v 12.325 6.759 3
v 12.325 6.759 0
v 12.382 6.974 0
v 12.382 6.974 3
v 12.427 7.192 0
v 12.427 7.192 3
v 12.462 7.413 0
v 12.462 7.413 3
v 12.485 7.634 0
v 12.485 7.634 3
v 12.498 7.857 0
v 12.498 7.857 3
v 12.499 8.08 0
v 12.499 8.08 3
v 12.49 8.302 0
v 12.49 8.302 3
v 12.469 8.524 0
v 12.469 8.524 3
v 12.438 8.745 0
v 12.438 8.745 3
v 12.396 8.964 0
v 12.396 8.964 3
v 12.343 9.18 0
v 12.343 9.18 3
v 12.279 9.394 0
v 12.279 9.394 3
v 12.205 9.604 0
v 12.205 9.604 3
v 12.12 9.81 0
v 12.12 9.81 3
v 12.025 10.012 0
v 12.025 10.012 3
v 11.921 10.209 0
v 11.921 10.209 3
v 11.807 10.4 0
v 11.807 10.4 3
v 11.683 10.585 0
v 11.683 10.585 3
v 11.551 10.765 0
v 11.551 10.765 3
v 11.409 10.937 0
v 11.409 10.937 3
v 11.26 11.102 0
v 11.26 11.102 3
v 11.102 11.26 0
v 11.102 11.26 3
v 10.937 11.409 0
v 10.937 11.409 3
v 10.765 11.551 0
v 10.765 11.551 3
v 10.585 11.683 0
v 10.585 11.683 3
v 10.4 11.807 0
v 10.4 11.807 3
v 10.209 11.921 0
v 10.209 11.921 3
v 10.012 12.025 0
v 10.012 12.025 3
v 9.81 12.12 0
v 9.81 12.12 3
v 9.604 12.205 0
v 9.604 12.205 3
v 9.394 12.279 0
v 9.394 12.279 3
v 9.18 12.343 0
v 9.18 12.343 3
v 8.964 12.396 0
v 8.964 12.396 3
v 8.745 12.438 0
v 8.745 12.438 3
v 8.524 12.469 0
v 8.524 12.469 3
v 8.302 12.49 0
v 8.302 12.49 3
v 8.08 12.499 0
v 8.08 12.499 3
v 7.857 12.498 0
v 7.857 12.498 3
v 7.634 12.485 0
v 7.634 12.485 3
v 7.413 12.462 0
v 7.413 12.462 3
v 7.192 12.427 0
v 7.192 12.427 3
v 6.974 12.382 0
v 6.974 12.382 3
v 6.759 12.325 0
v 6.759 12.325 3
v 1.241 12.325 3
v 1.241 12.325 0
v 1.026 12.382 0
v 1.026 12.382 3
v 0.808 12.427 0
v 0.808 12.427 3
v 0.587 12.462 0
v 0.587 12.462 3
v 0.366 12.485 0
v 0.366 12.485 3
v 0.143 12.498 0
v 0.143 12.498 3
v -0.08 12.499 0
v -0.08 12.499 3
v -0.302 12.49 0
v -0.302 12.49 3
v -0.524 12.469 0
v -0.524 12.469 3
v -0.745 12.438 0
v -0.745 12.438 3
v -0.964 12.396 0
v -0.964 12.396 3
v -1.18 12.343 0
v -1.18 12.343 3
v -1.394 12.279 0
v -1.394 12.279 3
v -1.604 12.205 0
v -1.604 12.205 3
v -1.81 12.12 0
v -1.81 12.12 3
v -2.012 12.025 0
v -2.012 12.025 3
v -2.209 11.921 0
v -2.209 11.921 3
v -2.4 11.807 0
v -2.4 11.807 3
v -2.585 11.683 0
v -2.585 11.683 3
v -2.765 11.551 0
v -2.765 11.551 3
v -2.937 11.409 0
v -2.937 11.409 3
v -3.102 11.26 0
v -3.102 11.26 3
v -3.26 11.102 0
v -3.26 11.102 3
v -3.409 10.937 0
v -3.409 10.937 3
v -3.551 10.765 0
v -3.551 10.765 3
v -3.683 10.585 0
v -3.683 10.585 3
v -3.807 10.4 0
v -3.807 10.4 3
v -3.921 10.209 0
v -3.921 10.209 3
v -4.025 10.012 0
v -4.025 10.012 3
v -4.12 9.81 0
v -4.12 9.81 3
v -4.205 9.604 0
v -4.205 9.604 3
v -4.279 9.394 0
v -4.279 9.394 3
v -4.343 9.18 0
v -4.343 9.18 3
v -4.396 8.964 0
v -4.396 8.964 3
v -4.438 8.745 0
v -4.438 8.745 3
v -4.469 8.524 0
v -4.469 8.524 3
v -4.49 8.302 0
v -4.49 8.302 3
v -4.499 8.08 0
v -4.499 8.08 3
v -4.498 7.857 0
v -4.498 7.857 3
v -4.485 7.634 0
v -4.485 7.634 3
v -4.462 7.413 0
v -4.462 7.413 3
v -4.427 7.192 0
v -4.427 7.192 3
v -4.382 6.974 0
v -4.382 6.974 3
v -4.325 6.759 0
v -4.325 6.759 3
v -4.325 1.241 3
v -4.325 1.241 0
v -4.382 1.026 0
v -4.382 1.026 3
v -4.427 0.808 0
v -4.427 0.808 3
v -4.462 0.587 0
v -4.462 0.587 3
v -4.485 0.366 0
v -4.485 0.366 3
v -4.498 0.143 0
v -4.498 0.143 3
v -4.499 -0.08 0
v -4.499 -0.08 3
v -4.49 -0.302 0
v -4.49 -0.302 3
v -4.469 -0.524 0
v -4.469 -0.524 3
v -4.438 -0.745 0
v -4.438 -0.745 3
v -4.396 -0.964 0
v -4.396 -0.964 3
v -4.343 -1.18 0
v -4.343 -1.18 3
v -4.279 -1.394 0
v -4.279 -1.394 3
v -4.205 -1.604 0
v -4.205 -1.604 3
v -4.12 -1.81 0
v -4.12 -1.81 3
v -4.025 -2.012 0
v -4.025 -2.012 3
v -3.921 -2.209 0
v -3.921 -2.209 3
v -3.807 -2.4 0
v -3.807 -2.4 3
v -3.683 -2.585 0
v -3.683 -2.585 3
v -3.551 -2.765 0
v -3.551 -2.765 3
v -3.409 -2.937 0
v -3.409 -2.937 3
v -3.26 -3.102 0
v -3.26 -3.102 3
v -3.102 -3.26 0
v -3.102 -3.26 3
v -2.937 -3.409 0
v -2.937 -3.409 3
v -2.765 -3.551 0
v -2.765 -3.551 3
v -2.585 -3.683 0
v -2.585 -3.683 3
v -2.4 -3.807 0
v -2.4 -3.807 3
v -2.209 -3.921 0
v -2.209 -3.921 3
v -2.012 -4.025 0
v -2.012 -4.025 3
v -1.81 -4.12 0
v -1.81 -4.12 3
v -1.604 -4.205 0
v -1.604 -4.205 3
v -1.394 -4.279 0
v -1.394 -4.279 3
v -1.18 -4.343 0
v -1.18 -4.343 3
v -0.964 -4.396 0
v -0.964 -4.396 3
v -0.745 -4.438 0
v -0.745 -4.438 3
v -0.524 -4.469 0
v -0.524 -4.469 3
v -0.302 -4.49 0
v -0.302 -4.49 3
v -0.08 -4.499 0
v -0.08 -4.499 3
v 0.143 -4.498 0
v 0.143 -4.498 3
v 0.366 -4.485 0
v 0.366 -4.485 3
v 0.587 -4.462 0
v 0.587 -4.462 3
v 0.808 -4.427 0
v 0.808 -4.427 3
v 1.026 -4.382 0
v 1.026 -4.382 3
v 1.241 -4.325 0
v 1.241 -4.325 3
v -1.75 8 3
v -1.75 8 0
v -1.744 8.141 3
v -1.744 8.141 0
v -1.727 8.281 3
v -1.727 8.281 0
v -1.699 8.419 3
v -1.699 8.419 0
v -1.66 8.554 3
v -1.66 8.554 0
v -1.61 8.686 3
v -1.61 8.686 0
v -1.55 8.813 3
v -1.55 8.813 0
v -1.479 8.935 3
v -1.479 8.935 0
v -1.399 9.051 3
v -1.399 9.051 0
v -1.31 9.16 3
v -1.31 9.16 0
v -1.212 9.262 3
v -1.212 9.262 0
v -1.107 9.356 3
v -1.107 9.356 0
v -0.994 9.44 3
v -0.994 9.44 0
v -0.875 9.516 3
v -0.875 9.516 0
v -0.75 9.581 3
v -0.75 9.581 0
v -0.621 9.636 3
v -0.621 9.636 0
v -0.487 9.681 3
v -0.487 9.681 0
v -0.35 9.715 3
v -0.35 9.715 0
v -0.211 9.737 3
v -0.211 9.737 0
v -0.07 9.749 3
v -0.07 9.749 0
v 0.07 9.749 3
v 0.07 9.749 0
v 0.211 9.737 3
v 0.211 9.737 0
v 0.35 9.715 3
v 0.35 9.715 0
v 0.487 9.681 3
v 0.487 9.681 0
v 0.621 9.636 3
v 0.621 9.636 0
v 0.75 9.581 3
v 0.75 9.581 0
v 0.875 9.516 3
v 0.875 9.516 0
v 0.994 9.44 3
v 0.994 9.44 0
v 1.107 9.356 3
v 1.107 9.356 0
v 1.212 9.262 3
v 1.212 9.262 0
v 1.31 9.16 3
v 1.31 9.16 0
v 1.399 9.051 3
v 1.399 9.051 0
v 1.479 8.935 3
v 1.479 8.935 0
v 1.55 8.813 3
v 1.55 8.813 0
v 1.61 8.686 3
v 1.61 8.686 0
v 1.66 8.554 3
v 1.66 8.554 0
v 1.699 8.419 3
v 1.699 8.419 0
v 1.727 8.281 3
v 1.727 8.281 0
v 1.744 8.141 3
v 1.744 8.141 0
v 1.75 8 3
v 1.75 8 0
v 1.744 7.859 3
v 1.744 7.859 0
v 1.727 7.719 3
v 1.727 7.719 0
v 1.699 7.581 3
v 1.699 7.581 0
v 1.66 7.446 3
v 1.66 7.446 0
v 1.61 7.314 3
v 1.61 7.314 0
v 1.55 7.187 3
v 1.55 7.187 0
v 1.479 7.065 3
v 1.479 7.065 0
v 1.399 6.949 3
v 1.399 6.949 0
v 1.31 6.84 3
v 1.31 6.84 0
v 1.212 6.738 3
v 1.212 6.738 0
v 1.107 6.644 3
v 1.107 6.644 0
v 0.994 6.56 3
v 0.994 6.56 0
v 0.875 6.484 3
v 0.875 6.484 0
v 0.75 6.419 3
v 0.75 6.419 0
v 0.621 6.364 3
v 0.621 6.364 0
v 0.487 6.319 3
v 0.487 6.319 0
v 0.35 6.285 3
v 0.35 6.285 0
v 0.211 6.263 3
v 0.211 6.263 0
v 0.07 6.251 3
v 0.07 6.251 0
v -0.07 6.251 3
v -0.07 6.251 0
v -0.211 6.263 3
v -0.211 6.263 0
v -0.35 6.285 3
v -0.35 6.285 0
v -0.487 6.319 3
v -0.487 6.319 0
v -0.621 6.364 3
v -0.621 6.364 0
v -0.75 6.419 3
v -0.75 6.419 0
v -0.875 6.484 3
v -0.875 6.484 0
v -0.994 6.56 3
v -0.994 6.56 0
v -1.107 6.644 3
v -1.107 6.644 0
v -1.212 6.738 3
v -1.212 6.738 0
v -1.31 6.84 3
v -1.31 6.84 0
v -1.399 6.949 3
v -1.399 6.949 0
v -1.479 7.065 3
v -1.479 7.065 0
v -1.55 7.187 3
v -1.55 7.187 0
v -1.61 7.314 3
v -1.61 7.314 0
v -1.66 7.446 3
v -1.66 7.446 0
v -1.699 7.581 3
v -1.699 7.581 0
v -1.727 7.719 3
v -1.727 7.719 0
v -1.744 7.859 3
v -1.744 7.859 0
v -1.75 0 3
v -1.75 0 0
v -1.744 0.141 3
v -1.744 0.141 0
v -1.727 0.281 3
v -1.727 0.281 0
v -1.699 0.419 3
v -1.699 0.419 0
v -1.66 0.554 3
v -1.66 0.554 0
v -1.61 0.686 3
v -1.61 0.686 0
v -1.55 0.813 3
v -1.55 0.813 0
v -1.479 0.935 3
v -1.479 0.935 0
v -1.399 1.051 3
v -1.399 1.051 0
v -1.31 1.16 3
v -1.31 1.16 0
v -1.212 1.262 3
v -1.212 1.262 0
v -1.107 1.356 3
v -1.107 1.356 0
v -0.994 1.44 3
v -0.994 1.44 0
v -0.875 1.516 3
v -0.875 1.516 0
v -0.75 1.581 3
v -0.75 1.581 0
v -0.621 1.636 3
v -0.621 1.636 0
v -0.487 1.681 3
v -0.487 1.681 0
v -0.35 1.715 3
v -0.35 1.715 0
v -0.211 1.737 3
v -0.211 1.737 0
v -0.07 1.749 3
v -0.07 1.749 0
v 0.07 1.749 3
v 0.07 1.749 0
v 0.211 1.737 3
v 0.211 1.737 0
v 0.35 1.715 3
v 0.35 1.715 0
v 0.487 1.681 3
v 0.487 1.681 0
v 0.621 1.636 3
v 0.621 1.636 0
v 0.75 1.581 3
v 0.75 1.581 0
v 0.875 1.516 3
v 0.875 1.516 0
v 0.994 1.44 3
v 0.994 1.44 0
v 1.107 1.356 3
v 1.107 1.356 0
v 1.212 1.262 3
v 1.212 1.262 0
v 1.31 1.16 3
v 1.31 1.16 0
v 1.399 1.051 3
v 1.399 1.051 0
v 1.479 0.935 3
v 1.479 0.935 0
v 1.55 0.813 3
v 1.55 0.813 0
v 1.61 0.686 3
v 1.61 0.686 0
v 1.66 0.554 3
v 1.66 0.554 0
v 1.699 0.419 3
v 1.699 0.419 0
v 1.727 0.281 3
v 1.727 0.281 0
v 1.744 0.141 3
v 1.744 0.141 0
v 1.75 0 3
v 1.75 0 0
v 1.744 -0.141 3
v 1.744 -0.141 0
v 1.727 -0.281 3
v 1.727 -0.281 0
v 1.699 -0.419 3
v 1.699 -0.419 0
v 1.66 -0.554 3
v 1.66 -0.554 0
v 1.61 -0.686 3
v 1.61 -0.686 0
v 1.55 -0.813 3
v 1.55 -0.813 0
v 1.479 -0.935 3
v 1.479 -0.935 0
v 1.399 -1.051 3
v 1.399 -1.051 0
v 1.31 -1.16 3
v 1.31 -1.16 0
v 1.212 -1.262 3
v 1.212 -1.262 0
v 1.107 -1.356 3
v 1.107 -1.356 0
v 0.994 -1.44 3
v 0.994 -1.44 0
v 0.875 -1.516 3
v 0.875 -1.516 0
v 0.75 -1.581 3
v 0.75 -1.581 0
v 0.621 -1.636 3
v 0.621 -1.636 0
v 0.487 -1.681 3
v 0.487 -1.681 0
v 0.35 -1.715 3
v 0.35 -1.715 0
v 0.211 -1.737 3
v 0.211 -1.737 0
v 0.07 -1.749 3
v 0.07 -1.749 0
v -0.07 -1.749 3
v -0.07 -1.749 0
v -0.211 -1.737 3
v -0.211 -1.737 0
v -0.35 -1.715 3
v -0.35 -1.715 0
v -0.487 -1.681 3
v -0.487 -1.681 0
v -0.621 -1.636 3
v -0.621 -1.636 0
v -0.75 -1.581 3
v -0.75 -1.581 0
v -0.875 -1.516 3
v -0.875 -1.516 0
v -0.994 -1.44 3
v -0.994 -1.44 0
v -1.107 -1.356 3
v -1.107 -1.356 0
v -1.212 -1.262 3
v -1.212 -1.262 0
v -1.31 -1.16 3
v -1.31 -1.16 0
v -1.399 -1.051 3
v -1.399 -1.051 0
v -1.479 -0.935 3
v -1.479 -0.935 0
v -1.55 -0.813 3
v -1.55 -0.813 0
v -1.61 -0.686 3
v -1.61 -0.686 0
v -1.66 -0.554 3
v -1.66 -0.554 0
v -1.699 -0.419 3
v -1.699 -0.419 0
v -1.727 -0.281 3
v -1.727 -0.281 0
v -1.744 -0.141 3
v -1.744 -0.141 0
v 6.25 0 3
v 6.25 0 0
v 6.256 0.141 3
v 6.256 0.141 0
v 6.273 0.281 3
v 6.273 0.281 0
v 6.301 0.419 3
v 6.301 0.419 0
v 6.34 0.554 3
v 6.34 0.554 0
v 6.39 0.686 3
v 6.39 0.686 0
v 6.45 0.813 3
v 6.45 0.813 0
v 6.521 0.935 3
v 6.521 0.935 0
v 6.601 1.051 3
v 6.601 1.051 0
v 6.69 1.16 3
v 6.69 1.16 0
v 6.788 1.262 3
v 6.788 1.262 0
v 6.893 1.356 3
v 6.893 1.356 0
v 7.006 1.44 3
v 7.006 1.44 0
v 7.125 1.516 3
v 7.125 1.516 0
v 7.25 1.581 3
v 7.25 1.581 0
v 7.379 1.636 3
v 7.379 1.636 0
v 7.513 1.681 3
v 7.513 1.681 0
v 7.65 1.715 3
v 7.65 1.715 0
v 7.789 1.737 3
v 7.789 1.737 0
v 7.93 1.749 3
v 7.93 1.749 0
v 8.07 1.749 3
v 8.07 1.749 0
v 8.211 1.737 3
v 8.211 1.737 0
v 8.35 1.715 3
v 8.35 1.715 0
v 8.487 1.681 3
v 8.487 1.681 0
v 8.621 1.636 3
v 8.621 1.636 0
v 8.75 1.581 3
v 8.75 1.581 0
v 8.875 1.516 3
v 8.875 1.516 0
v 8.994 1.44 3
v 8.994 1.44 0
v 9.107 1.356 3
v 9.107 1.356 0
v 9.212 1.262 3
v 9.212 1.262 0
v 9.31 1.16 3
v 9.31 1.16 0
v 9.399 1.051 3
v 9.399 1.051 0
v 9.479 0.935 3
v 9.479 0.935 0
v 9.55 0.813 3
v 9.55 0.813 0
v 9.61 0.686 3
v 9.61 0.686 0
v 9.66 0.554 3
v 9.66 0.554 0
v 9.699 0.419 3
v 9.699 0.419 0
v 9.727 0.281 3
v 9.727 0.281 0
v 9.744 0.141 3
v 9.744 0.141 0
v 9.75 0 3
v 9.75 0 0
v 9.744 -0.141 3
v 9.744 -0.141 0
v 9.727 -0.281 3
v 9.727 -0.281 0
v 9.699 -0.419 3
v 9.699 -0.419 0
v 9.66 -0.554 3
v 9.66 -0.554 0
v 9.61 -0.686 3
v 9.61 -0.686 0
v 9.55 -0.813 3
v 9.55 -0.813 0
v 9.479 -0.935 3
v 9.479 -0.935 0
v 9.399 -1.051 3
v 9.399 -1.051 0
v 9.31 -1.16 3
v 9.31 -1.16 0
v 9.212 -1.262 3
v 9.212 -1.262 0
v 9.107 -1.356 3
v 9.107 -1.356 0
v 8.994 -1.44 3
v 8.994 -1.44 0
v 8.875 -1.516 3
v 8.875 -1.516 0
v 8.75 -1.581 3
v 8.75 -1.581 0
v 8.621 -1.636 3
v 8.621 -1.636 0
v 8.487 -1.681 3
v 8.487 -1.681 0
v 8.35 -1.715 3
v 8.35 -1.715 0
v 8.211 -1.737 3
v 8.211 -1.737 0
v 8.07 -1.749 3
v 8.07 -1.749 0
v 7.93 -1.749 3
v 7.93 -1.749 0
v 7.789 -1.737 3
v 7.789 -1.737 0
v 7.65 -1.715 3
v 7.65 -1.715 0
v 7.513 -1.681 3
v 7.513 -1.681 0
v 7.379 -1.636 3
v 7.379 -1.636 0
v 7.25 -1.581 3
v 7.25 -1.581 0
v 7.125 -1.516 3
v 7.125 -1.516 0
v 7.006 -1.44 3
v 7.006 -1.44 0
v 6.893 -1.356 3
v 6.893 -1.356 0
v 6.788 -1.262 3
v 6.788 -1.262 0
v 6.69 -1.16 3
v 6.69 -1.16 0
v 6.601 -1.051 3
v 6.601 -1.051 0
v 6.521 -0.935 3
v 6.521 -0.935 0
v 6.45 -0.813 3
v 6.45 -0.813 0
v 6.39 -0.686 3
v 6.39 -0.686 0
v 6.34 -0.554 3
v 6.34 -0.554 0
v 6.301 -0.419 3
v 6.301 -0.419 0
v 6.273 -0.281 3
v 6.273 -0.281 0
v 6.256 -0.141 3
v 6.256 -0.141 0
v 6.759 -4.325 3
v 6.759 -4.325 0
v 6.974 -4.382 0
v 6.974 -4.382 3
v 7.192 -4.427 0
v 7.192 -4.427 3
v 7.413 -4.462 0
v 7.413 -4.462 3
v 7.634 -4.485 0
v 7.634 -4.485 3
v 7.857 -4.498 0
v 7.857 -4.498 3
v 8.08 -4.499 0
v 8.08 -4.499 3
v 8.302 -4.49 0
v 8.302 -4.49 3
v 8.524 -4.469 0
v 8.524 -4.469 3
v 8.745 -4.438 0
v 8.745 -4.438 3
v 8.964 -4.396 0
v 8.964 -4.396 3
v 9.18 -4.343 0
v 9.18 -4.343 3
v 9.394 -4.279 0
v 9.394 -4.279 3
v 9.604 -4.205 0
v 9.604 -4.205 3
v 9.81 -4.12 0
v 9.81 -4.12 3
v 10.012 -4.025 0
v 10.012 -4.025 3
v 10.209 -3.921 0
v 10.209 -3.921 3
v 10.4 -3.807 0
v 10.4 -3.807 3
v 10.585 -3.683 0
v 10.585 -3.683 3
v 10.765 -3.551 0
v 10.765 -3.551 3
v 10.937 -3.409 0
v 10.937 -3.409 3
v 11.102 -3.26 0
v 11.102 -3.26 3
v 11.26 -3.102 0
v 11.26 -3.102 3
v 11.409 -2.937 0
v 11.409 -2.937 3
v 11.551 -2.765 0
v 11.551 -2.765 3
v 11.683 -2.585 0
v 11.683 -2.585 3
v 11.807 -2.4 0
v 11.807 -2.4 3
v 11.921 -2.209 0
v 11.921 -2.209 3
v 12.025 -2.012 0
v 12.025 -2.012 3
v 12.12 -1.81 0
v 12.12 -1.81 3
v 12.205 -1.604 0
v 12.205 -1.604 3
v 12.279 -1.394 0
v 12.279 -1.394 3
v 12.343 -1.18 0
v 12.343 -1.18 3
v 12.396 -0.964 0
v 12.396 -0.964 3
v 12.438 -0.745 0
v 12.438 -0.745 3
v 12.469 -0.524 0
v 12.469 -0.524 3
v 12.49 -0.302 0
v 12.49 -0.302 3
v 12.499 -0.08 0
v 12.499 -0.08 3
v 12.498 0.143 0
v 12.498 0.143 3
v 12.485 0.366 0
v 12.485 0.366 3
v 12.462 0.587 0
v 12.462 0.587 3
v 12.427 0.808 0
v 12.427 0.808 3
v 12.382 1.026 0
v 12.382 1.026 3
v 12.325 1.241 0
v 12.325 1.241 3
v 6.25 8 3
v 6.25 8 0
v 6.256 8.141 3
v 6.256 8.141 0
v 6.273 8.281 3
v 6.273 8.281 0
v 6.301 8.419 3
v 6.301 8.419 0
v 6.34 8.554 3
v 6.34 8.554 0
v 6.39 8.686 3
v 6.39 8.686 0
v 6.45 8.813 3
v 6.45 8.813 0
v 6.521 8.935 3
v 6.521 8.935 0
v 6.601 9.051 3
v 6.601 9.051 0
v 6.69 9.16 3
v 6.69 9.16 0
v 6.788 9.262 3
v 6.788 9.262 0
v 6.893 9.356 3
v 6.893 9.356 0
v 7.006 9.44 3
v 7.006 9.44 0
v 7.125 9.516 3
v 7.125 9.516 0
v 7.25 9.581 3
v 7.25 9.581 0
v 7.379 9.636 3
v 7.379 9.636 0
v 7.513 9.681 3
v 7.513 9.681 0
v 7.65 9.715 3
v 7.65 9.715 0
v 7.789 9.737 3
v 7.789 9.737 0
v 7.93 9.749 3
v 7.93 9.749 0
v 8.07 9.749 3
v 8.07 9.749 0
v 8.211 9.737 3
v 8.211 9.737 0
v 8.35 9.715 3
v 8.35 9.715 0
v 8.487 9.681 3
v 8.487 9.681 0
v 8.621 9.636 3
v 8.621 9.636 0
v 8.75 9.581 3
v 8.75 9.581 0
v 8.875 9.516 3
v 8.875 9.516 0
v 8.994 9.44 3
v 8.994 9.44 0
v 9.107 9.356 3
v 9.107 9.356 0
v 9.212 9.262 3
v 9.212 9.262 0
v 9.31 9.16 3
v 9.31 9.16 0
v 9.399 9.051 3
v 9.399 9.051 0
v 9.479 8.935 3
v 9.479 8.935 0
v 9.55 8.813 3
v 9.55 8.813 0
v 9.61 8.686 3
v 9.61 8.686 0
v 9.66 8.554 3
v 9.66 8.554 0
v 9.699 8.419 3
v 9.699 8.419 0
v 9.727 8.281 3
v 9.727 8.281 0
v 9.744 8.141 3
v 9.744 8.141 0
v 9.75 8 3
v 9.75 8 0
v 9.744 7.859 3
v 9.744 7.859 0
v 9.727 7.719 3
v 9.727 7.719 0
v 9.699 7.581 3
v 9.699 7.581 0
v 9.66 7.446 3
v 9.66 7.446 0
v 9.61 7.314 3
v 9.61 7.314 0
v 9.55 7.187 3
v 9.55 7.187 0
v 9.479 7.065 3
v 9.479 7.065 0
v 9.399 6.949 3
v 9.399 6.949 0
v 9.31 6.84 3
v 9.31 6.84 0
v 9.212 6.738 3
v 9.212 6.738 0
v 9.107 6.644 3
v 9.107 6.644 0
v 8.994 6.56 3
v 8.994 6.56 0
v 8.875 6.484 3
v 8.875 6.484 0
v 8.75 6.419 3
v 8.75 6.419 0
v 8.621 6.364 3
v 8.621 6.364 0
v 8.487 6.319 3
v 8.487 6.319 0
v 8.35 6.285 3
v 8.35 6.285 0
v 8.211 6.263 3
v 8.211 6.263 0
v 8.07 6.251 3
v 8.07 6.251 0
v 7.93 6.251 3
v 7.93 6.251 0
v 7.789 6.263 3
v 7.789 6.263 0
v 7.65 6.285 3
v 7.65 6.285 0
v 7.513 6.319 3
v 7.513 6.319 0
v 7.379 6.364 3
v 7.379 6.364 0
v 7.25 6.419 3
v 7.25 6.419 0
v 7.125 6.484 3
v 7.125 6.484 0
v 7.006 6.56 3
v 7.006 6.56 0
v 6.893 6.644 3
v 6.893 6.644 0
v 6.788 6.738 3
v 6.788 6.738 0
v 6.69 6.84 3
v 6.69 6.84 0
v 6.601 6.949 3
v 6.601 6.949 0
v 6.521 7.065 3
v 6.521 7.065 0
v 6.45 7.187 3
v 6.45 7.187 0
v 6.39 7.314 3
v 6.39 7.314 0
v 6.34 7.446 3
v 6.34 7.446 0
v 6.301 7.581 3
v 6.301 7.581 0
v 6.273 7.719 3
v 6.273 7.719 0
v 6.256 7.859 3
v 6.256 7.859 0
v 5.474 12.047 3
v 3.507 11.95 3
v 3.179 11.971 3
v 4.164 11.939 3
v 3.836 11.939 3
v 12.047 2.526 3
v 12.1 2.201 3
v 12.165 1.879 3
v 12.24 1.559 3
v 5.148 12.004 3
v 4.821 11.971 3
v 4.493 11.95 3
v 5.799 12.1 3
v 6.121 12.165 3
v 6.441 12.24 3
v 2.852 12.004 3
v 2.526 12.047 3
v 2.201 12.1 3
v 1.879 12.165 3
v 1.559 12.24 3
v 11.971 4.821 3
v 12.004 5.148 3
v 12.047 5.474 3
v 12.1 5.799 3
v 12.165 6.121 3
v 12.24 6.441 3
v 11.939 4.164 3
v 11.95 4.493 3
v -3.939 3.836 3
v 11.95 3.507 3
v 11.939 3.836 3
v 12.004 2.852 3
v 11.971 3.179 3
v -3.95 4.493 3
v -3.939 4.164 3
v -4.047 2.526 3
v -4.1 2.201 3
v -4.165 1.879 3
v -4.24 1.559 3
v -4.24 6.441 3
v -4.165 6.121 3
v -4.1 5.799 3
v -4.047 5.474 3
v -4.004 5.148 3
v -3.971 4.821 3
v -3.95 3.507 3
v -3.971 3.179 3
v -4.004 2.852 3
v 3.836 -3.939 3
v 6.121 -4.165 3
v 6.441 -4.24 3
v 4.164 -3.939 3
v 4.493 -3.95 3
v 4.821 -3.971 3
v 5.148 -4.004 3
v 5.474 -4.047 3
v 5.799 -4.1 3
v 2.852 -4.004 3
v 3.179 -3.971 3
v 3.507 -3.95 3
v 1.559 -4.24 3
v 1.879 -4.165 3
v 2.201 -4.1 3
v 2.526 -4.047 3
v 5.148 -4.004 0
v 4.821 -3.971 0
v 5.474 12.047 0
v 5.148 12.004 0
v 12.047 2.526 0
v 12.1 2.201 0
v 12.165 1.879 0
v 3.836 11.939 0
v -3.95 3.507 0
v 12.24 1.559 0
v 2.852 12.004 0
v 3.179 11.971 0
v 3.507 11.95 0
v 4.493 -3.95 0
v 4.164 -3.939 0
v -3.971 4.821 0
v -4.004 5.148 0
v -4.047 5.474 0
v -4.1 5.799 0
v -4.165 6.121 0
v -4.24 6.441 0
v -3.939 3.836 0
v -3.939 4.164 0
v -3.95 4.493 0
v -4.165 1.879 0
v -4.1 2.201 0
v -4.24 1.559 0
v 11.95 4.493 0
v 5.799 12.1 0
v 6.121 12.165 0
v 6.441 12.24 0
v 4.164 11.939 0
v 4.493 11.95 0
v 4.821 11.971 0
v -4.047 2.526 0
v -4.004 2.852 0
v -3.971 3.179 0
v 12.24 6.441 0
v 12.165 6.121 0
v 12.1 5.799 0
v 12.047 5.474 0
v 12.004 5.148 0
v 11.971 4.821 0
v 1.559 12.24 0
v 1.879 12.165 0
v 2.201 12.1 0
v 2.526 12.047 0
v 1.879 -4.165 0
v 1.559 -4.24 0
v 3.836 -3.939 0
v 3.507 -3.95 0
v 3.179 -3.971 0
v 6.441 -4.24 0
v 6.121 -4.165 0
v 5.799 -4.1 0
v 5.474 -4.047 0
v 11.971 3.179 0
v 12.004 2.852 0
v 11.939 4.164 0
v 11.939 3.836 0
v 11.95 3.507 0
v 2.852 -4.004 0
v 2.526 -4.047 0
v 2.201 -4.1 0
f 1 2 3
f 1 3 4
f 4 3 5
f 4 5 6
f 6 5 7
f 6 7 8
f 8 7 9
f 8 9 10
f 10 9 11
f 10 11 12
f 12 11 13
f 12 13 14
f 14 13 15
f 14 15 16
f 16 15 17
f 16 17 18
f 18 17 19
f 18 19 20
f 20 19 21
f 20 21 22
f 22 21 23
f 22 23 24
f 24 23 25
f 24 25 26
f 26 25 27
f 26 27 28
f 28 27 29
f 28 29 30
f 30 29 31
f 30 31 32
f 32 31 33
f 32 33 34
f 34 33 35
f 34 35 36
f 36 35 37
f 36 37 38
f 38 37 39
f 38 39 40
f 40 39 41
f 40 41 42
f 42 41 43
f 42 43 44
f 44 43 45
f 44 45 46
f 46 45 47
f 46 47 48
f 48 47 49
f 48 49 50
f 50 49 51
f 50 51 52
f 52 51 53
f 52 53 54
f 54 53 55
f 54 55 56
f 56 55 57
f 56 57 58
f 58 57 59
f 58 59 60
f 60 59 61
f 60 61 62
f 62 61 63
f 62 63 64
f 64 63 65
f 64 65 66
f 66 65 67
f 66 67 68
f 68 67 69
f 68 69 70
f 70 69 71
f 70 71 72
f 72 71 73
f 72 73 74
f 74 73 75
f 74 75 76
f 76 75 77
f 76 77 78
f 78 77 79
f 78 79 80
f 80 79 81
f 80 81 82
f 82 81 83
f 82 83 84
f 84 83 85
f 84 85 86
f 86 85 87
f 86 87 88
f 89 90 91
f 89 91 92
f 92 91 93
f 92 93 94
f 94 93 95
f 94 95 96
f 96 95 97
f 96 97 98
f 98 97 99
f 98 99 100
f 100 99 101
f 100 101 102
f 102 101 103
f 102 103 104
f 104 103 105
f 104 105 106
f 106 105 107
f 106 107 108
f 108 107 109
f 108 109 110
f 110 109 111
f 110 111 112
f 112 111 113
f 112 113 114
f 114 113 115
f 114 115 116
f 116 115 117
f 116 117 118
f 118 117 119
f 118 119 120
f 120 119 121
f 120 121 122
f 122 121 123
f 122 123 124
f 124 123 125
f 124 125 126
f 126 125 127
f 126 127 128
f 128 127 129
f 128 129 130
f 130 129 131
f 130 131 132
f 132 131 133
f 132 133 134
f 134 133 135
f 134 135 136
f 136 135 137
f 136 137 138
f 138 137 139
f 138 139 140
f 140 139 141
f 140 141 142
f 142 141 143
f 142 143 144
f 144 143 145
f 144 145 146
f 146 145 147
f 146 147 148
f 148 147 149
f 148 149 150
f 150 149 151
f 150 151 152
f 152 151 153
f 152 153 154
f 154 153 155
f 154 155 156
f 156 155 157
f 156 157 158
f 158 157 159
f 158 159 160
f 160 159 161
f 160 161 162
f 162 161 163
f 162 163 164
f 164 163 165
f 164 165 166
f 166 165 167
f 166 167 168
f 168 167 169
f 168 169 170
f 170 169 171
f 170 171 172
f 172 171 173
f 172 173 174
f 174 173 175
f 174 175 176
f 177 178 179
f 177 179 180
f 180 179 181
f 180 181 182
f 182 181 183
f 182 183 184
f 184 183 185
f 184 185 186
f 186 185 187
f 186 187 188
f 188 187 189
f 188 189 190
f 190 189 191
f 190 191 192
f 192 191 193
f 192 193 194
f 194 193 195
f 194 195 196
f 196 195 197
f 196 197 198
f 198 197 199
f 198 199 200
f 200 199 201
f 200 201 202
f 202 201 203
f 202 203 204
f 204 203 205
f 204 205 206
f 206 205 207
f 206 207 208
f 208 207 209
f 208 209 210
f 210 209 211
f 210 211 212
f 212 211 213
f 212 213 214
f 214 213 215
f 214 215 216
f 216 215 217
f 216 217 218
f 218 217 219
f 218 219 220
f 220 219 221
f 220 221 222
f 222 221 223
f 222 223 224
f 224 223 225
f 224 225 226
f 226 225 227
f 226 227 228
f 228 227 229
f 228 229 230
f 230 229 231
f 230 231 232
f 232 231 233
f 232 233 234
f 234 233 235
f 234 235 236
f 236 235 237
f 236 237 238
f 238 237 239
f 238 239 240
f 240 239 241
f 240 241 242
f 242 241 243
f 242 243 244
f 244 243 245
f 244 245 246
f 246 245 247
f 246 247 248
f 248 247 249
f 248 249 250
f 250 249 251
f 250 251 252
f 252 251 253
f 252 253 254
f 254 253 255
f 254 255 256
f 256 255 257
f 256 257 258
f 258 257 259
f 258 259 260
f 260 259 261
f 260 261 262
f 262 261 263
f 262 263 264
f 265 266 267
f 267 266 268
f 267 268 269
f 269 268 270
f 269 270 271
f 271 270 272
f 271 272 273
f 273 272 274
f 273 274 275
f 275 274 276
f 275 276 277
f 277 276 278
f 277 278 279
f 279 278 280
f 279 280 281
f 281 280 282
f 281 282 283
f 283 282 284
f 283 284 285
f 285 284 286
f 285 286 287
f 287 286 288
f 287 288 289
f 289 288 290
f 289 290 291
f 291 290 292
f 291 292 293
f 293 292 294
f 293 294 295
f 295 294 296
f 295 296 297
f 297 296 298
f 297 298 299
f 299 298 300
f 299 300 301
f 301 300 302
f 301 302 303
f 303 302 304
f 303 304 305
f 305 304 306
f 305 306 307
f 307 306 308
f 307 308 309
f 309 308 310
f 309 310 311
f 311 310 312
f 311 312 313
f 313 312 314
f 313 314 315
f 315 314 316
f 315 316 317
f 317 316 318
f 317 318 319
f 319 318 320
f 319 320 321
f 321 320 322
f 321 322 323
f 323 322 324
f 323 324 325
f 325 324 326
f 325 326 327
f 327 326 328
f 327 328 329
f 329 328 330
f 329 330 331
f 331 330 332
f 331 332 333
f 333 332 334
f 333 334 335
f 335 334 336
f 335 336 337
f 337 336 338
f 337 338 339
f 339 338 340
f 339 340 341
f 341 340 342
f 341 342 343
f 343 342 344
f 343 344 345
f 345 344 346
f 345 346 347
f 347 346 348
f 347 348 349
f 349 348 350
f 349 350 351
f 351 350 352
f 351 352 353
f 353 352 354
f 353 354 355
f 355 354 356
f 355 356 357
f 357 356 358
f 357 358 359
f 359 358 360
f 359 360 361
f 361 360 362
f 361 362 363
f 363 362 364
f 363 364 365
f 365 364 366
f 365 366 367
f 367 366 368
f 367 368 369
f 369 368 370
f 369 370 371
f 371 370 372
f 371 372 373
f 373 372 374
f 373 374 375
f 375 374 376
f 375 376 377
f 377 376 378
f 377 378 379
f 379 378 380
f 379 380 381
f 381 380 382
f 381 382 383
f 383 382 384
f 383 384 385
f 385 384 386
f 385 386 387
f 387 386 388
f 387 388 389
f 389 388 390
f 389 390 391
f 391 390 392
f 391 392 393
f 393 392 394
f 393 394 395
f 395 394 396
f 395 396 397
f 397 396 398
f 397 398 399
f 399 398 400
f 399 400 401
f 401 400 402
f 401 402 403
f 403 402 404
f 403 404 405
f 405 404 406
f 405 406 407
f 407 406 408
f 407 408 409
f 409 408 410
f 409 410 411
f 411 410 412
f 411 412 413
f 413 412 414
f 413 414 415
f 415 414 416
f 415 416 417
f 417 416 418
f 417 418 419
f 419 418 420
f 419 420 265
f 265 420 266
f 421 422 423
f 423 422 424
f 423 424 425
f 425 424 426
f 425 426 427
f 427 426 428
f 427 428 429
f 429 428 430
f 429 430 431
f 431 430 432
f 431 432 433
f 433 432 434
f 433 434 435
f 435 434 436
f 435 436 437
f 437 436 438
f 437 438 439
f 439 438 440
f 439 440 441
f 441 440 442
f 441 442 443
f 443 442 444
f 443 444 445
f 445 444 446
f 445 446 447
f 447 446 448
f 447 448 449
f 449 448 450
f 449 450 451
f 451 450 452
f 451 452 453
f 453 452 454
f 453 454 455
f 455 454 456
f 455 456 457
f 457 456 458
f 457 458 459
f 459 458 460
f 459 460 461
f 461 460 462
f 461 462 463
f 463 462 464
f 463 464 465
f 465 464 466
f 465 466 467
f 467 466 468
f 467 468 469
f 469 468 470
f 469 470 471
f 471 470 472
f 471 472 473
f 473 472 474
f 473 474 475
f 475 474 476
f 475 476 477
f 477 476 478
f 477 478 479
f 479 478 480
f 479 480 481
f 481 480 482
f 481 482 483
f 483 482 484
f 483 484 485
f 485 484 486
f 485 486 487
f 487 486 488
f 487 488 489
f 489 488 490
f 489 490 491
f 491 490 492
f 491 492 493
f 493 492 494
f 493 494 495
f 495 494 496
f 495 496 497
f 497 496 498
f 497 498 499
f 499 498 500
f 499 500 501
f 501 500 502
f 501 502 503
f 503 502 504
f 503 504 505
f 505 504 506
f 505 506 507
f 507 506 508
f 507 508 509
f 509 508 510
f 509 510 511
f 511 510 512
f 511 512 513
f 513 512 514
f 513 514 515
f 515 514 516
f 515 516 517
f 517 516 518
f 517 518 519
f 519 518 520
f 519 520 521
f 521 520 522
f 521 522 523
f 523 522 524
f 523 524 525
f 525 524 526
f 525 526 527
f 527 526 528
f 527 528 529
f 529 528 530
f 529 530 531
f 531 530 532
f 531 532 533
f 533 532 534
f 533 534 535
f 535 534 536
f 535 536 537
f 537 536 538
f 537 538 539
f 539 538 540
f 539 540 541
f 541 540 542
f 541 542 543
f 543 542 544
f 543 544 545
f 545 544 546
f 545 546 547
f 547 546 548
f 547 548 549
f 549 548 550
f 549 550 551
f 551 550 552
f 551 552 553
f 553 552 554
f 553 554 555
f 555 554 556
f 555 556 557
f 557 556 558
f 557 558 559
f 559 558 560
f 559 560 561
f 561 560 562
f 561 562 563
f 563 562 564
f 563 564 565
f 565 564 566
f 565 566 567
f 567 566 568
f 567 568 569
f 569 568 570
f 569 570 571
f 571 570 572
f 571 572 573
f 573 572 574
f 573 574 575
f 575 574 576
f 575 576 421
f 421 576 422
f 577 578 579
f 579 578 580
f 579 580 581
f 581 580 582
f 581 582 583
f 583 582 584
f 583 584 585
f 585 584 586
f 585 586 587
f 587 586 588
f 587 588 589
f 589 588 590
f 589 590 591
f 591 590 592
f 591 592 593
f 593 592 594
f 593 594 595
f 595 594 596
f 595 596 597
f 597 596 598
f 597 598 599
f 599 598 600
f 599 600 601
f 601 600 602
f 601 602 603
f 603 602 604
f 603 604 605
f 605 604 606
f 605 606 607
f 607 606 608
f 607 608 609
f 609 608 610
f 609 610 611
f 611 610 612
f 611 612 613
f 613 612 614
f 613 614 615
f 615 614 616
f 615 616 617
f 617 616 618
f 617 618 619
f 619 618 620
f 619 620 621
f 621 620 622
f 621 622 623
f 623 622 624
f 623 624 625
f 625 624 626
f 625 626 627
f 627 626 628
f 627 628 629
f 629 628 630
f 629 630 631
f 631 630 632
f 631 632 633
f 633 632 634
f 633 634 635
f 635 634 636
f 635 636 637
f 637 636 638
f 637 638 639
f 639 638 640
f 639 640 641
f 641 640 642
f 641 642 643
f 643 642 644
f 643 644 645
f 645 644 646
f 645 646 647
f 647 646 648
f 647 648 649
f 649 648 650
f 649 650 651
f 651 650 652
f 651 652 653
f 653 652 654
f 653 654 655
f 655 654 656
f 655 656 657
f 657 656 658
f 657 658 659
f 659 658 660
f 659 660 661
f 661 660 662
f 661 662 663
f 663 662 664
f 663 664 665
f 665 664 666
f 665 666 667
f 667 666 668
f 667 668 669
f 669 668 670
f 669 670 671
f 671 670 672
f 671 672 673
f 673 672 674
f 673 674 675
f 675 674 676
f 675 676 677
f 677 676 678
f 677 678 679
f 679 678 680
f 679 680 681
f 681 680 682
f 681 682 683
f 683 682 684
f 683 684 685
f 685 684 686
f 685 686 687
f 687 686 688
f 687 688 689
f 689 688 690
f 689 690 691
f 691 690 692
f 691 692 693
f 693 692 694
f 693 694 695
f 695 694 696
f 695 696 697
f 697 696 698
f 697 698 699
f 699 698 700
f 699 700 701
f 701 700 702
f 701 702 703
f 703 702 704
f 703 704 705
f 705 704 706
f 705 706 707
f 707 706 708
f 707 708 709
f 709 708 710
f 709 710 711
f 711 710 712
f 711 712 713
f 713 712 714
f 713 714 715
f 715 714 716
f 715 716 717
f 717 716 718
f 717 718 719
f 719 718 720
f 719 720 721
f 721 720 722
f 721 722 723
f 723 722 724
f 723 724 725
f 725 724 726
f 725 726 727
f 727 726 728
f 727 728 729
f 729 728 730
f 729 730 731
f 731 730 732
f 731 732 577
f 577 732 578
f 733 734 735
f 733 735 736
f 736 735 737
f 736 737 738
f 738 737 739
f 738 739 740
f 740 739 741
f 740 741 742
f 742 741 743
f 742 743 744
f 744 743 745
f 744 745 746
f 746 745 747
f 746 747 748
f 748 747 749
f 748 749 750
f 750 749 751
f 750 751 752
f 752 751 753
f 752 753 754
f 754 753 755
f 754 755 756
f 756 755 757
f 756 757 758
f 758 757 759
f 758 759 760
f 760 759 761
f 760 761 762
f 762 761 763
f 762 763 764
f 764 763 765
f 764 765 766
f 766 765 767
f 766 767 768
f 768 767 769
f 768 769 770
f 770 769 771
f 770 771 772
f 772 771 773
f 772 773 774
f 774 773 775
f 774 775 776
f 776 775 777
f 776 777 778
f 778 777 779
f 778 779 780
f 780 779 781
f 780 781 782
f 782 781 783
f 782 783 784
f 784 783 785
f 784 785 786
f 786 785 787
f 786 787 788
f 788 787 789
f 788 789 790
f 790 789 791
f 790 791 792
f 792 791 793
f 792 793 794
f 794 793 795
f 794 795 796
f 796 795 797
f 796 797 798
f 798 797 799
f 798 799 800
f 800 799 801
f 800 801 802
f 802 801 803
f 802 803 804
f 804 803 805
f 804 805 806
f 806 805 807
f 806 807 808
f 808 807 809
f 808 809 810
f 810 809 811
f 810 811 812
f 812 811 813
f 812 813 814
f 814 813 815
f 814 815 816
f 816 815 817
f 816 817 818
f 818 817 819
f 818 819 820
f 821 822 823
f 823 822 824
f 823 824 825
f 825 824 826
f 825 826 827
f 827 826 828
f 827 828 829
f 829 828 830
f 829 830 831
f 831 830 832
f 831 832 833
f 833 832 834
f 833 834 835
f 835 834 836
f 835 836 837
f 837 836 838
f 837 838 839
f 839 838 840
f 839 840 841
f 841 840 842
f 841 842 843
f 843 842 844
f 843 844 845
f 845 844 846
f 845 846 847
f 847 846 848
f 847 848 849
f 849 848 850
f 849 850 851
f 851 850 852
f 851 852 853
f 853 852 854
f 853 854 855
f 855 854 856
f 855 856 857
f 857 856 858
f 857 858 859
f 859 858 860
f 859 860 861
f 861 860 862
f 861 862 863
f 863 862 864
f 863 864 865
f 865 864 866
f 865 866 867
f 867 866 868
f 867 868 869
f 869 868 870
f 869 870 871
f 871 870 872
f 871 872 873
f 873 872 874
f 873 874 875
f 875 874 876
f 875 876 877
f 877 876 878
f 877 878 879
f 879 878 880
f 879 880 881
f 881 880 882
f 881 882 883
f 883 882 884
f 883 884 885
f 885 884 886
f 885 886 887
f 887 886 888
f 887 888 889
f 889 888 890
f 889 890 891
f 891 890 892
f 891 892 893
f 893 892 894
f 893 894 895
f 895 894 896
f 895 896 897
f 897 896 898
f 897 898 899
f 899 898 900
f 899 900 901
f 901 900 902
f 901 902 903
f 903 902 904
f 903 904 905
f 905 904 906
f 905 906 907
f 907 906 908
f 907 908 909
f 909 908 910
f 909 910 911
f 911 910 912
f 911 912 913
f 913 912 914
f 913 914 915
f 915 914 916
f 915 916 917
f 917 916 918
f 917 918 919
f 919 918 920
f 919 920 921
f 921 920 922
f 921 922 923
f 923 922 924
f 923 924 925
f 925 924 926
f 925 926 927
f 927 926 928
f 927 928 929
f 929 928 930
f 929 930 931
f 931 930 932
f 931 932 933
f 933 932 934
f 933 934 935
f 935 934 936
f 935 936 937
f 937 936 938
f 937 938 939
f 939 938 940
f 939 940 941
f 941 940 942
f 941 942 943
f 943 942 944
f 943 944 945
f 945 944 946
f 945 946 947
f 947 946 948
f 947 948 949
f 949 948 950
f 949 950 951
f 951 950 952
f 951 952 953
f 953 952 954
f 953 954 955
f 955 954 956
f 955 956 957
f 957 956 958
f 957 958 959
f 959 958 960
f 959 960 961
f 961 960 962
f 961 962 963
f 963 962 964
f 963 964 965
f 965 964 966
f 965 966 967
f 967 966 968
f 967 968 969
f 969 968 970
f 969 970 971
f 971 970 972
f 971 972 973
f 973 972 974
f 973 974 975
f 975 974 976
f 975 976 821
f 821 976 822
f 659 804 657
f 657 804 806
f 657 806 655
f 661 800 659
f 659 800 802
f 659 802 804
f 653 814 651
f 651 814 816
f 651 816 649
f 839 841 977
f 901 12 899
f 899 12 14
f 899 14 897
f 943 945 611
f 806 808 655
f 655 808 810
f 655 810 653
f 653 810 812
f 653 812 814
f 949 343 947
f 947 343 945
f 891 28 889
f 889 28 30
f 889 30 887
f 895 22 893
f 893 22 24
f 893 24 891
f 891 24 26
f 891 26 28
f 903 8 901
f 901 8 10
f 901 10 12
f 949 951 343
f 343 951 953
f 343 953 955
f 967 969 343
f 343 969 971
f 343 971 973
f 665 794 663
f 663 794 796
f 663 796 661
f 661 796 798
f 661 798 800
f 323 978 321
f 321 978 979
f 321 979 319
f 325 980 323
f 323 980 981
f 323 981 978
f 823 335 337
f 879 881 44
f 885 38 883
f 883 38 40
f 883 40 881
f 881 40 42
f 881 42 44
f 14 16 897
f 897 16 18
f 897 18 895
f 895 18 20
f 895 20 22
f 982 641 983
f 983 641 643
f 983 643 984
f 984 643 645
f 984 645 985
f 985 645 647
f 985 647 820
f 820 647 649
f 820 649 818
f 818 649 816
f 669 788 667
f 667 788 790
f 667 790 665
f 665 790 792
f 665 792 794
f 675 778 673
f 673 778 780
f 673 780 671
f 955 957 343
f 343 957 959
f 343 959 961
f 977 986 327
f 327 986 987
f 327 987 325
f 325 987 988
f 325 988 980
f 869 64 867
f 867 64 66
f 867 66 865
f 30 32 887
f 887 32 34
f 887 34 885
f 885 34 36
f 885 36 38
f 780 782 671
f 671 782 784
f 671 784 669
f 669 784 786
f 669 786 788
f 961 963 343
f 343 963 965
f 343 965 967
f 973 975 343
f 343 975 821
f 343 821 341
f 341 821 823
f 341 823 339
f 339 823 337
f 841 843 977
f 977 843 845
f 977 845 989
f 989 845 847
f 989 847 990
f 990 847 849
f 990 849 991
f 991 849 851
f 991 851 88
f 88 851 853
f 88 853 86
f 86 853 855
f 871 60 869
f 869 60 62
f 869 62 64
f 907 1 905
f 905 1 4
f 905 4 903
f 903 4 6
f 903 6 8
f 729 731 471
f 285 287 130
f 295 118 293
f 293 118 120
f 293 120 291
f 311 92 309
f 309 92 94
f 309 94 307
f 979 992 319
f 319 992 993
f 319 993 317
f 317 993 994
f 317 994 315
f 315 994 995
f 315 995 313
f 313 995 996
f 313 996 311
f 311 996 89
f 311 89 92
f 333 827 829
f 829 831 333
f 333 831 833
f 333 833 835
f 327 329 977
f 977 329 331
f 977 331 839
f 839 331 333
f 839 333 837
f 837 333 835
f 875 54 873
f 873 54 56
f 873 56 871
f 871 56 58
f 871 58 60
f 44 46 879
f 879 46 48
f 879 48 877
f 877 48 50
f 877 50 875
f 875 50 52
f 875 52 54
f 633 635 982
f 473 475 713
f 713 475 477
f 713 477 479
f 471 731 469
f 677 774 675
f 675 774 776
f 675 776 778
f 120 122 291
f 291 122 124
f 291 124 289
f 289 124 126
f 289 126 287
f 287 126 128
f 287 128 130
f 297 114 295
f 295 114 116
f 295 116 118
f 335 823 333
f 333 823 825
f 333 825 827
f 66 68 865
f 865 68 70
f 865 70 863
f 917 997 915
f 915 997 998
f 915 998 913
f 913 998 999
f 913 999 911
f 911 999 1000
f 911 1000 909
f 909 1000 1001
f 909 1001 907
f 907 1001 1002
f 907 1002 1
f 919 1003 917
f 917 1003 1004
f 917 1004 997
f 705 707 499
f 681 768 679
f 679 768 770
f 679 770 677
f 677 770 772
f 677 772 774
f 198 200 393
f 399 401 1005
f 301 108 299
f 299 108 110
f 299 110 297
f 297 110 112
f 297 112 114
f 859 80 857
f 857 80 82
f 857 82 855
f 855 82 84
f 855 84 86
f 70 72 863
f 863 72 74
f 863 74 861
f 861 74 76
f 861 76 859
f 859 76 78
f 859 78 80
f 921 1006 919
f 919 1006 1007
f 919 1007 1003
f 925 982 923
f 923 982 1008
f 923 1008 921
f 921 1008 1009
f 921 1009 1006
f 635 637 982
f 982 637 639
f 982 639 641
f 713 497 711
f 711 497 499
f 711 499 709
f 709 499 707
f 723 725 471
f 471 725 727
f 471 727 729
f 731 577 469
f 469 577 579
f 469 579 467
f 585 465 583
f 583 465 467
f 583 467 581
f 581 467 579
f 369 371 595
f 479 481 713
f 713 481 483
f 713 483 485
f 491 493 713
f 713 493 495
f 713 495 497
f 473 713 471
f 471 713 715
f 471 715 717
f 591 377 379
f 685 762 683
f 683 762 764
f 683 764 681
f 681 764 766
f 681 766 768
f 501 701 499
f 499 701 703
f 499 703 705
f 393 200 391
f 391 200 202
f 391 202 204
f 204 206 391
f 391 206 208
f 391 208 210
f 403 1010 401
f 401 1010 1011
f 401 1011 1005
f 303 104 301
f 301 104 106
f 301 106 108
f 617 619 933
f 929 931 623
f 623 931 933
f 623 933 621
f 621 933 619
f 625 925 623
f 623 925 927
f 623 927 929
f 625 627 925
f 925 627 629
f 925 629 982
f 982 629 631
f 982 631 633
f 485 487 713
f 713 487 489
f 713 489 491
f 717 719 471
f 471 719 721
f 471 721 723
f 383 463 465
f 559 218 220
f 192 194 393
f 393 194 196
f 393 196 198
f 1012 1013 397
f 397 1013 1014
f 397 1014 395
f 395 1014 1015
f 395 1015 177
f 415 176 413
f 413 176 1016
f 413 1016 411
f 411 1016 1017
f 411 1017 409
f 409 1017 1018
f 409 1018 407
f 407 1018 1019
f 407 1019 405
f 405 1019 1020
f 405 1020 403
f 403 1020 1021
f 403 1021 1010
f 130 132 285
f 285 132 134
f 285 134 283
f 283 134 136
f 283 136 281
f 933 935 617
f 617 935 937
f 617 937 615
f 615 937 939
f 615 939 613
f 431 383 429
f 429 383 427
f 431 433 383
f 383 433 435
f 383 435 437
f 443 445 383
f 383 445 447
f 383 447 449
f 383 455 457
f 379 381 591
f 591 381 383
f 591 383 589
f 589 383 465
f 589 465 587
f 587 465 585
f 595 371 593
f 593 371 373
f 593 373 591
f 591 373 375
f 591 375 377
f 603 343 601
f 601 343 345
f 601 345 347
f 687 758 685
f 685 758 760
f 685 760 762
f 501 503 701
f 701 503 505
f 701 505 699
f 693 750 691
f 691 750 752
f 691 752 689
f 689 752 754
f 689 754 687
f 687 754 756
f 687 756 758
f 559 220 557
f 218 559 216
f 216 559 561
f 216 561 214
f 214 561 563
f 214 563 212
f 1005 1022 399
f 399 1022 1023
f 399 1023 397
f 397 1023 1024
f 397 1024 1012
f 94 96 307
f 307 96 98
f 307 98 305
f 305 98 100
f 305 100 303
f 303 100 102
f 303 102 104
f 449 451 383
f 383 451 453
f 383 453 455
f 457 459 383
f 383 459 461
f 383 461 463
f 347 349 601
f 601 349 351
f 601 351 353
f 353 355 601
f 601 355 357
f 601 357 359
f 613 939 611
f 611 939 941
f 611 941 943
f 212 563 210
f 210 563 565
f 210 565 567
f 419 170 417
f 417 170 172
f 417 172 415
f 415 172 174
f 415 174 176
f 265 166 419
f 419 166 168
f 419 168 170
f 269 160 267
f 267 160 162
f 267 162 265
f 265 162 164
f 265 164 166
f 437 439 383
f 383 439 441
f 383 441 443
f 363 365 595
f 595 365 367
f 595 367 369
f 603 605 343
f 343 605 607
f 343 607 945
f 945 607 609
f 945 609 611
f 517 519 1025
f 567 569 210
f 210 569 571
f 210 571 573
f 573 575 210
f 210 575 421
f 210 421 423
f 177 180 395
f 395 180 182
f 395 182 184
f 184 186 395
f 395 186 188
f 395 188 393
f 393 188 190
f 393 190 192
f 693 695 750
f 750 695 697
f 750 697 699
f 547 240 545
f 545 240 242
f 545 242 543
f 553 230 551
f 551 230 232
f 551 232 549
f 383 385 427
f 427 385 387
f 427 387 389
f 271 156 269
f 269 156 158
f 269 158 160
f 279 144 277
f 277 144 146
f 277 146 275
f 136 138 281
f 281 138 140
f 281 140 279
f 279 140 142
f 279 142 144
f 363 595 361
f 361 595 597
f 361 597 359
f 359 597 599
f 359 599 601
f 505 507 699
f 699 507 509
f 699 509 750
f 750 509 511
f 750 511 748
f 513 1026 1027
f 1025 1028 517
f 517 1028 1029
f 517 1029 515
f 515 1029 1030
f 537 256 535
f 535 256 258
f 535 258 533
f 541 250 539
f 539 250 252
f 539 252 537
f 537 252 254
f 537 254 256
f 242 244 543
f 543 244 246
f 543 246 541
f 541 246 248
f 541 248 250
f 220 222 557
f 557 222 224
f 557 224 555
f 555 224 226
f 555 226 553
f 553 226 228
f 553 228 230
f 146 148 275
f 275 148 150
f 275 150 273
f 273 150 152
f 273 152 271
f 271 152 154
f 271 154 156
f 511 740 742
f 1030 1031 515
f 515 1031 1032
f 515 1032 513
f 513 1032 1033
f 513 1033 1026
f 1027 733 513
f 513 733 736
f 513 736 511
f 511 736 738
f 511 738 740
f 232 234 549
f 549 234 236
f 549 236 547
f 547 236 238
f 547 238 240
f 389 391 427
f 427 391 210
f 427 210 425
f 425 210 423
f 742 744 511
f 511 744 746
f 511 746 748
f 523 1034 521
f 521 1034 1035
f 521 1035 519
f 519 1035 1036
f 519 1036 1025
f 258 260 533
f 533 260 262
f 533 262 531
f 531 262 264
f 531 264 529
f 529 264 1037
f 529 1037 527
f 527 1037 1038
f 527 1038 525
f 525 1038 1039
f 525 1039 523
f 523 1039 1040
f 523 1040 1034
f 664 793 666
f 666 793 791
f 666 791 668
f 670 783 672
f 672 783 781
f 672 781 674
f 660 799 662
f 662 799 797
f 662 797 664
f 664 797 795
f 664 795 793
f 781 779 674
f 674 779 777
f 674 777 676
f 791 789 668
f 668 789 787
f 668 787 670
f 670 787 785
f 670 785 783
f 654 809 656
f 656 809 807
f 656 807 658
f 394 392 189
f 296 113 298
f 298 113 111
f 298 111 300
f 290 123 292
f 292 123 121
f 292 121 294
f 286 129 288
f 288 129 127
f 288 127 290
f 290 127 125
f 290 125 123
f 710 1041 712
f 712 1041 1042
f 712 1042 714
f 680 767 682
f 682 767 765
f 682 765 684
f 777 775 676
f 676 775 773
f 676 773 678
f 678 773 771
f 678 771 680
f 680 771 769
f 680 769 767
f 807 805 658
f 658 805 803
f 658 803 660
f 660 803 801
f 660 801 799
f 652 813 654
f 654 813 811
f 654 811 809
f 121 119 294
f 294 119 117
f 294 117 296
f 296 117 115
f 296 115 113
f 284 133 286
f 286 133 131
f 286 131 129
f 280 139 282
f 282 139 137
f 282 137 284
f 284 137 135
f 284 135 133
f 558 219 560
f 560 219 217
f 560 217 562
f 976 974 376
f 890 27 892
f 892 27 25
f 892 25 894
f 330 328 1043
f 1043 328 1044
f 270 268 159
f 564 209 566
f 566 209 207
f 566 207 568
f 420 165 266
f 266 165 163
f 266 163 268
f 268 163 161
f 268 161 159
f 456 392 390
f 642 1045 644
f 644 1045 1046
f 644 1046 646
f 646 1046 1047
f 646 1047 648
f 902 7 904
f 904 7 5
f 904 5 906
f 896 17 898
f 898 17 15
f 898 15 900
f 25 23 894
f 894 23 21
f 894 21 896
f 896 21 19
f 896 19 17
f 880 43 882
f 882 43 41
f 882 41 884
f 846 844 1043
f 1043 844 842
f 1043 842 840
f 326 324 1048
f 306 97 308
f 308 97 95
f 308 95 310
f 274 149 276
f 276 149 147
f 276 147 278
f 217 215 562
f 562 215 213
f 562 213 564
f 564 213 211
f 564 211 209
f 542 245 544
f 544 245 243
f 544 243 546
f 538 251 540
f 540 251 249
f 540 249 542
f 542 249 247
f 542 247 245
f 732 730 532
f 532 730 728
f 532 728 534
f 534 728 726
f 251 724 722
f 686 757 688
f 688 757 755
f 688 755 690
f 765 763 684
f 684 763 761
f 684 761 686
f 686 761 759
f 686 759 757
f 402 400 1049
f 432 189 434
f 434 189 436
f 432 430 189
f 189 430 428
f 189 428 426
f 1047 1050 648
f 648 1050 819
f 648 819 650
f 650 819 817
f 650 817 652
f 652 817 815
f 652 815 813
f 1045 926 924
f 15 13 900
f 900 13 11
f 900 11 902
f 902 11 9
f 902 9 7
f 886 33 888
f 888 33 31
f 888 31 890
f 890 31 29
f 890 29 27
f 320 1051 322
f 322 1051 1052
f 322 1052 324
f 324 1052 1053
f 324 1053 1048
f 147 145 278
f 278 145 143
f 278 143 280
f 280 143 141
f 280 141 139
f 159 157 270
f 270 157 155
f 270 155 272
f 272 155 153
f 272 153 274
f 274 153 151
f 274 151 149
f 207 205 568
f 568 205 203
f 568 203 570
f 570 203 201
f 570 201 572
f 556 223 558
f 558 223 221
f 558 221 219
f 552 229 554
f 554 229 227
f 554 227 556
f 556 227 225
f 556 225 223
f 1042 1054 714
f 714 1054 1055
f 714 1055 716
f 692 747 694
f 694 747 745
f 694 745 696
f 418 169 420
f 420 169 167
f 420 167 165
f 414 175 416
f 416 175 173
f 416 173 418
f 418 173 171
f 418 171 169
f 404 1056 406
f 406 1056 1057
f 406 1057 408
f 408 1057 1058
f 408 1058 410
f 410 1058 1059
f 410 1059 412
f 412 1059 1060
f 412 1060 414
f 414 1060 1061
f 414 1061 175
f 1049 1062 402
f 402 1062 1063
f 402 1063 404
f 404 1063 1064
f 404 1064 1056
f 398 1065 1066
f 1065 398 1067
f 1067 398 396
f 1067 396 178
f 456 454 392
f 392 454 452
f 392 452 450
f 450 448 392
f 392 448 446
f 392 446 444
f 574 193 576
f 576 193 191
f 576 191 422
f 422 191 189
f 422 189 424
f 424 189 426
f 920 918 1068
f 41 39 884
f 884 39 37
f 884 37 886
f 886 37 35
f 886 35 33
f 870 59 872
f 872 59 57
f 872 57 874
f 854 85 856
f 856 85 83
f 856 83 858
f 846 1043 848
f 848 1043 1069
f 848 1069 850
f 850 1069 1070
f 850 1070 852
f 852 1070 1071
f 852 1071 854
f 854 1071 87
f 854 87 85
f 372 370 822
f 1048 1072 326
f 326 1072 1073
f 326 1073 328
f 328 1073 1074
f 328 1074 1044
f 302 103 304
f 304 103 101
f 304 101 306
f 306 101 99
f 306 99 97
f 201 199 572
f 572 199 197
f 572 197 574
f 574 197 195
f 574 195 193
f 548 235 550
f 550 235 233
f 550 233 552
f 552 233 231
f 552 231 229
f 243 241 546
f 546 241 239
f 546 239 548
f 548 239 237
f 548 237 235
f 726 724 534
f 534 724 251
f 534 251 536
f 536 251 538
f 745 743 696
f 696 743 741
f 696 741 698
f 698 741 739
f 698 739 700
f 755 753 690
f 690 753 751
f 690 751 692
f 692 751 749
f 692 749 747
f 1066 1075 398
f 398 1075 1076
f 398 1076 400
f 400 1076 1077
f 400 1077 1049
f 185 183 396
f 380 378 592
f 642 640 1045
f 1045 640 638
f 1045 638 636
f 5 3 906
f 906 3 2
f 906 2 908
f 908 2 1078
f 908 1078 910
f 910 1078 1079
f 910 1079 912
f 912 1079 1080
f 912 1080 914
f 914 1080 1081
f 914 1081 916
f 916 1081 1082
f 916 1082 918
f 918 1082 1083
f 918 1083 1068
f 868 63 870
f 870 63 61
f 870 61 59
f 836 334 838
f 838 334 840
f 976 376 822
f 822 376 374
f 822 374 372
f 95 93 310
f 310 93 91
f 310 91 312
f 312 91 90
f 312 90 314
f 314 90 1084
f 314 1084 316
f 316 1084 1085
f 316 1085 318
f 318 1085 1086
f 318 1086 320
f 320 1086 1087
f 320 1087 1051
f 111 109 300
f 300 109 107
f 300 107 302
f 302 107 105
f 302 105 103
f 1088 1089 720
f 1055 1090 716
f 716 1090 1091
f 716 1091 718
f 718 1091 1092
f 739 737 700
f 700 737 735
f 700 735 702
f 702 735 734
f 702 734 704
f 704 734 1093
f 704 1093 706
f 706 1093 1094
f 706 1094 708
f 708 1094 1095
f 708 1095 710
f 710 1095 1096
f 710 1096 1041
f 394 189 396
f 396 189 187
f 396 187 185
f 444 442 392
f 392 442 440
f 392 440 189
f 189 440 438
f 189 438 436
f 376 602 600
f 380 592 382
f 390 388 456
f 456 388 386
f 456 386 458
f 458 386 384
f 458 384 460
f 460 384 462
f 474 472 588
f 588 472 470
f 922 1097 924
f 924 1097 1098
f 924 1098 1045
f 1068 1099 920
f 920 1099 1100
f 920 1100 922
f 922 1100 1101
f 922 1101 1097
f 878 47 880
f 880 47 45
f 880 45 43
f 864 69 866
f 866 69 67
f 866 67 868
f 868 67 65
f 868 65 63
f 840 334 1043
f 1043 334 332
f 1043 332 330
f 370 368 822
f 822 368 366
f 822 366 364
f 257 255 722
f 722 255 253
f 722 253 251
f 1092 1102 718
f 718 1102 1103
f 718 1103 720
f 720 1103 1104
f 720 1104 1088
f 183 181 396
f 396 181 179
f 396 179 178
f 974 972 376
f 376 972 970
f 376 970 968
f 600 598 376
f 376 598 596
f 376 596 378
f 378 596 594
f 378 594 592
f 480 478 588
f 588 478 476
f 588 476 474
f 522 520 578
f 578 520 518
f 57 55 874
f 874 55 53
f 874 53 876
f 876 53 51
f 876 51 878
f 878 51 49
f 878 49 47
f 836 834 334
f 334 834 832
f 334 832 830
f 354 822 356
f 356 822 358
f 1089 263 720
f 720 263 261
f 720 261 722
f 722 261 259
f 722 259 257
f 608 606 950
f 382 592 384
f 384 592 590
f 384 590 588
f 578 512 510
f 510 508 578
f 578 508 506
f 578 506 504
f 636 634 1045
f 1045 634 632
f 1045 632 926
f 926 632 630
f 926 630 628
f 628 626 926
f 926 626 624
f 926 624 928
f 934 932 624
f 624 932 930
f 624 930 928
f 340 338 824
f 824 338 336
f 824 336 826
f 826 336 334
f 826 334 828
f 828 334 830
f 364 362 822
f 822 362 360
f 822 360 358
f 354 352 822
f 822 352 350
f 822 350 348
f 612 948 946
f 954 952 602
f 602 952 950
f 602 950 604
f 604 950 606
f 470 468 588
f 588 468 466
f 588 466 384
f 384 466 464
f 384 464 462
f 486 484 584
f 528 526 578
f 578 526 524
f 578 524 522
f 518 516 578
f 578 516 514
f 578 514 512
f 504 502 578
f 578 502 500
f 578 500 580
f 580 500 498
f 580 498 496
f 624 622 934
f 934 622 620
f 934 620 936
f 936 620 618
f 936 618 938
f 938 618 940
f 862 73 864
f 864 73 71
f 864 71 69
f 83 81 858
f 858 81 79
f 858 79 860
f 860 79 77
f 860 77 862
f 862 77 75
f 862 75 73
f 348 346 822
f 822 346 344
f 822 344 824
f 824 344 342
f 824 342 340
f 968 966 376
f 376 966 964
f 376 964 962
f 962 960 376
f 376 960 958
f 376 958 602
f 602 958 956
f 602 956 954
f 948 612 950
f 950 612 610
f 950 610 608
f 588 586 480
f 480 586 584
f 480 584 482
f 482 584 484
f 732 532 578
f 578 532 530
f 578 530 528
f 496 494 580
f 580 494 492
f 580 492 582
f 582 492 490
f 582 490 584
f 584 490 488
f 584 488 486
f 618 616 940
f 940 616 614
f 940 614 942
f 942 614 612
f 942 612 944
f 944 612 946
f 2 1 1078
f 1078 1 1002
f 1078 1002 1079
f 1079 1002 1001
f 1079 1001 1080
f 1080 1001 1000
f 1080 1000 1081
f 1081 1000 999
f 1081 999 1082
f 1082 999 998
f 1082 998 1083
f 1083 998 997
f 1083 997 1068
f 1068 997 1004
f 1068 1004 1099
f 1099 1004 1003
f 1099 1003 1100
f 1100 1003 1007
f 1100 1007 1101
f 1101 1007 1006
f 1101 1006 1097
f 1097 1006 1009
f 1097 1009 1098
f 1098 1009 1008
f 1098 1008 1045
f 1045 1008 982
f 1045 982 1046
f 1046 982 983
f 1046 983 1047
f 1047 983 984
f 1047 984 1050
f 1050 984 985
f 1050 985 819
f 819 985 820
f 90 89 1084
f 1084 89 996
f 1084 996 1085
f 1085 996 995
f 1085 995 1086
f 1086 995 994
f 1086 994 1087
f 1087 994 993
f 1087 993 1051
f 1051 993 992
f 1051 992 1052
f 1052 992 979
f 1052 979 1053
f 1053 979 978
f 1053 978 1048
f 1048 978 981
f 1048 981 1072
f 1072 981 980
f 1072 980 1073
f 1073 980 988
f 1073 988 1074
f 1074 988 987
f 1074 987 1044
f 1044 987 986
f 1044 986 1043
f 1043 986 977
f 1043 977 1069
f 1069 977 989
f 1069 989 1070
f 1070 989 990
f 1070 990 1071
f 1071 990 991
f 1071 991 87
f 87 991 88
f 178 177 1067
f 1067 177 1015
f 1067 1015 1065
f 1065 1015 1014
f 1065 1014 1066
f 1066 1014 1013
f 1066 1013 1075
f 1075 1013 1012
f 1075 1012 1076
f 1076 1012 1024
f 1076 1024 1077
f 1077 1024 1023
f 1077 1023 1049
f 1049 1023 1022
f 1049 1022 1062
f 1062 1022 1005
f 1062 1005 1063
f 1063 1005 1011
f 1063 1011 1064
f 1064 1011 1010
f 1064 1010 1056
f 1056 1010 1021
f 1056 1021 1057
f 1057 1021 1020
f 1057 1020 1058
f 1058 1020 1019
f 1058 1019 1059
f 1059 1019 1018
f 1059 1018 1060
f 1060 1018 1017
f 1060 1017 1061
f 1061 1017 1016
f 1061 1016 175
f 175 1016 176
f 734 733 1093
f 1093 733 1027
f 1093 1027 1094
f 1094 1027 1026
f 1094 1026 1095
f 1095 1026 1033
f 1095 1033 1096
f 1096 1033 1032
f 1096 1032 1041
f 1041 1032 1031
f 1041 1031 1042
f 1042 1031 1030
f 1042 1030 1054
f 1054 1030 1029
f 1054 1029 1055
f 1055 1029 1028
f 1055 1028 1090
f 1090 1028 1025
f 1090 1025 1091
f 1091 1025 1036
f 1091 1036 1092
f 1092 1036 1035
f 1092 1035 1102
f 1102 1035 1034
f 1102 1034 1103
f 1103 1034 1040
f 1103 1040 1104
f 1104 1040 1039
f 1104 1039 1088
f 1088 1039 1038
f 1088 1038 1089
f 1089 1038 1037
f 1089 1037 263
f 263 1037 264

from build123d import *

# Parameters (mm, degrees)
SKETCH_1_R      = 1.75
EXTRUDE_1_DEPTH = 3
FILLET_1_R      = 10


with BuildPart() as part:
    # Эскиз1 → Бобышка-Вытянуть1 (new body)
    with BuildSketch(Plane.XY):
        with BuildLine():
            ThreePointArc((10.061552813, 4), (11.181980515, 11.181980515), (4, 10.061552813))
            ThreePointArc((4, 10.061552813), (-3.181980515, 11.181980515), (-2.061552813, 4))
            ThreePointArc((-2.061552813, 4), (-3.181980515, -3.181980515), (4, -2.061552813))
            ThreePointArc((4, -2.061552813), (11.181980515, -3.181980515), (10.061552813, 4))
        make_face()
        Circle(SKETCH_1_R, mode=Mode.SUBTRACT)
        with Locations((8, 0)):
            Circle(SKETCH_1_R, mode=Mode.SUBTRACT)
        with Locations((0, 8)):
            Circle(SKETCH_1_R, mode=Mode.SUBTRACT)
        with Locations((8, 8)):
            Circle(SKETCH_1_R, mode=Mode.SUBTRACT)
    extrude(amount=EXTRUDE_1_DEPTH)

    # Скругление1
    fillet_1_edges = [part.edges().sort_by_distance(p)[0] for p in [
        (10.061552813, 4, 1.5),
        (4, -2.061552813, 1.5),
        (-2.061552813, 4, 1.5),
        (4, 10.061552813, 1.5),
    ]]
    fillet(fillet_1_edges, radius=FILLET_1_R)


solid = part.part
